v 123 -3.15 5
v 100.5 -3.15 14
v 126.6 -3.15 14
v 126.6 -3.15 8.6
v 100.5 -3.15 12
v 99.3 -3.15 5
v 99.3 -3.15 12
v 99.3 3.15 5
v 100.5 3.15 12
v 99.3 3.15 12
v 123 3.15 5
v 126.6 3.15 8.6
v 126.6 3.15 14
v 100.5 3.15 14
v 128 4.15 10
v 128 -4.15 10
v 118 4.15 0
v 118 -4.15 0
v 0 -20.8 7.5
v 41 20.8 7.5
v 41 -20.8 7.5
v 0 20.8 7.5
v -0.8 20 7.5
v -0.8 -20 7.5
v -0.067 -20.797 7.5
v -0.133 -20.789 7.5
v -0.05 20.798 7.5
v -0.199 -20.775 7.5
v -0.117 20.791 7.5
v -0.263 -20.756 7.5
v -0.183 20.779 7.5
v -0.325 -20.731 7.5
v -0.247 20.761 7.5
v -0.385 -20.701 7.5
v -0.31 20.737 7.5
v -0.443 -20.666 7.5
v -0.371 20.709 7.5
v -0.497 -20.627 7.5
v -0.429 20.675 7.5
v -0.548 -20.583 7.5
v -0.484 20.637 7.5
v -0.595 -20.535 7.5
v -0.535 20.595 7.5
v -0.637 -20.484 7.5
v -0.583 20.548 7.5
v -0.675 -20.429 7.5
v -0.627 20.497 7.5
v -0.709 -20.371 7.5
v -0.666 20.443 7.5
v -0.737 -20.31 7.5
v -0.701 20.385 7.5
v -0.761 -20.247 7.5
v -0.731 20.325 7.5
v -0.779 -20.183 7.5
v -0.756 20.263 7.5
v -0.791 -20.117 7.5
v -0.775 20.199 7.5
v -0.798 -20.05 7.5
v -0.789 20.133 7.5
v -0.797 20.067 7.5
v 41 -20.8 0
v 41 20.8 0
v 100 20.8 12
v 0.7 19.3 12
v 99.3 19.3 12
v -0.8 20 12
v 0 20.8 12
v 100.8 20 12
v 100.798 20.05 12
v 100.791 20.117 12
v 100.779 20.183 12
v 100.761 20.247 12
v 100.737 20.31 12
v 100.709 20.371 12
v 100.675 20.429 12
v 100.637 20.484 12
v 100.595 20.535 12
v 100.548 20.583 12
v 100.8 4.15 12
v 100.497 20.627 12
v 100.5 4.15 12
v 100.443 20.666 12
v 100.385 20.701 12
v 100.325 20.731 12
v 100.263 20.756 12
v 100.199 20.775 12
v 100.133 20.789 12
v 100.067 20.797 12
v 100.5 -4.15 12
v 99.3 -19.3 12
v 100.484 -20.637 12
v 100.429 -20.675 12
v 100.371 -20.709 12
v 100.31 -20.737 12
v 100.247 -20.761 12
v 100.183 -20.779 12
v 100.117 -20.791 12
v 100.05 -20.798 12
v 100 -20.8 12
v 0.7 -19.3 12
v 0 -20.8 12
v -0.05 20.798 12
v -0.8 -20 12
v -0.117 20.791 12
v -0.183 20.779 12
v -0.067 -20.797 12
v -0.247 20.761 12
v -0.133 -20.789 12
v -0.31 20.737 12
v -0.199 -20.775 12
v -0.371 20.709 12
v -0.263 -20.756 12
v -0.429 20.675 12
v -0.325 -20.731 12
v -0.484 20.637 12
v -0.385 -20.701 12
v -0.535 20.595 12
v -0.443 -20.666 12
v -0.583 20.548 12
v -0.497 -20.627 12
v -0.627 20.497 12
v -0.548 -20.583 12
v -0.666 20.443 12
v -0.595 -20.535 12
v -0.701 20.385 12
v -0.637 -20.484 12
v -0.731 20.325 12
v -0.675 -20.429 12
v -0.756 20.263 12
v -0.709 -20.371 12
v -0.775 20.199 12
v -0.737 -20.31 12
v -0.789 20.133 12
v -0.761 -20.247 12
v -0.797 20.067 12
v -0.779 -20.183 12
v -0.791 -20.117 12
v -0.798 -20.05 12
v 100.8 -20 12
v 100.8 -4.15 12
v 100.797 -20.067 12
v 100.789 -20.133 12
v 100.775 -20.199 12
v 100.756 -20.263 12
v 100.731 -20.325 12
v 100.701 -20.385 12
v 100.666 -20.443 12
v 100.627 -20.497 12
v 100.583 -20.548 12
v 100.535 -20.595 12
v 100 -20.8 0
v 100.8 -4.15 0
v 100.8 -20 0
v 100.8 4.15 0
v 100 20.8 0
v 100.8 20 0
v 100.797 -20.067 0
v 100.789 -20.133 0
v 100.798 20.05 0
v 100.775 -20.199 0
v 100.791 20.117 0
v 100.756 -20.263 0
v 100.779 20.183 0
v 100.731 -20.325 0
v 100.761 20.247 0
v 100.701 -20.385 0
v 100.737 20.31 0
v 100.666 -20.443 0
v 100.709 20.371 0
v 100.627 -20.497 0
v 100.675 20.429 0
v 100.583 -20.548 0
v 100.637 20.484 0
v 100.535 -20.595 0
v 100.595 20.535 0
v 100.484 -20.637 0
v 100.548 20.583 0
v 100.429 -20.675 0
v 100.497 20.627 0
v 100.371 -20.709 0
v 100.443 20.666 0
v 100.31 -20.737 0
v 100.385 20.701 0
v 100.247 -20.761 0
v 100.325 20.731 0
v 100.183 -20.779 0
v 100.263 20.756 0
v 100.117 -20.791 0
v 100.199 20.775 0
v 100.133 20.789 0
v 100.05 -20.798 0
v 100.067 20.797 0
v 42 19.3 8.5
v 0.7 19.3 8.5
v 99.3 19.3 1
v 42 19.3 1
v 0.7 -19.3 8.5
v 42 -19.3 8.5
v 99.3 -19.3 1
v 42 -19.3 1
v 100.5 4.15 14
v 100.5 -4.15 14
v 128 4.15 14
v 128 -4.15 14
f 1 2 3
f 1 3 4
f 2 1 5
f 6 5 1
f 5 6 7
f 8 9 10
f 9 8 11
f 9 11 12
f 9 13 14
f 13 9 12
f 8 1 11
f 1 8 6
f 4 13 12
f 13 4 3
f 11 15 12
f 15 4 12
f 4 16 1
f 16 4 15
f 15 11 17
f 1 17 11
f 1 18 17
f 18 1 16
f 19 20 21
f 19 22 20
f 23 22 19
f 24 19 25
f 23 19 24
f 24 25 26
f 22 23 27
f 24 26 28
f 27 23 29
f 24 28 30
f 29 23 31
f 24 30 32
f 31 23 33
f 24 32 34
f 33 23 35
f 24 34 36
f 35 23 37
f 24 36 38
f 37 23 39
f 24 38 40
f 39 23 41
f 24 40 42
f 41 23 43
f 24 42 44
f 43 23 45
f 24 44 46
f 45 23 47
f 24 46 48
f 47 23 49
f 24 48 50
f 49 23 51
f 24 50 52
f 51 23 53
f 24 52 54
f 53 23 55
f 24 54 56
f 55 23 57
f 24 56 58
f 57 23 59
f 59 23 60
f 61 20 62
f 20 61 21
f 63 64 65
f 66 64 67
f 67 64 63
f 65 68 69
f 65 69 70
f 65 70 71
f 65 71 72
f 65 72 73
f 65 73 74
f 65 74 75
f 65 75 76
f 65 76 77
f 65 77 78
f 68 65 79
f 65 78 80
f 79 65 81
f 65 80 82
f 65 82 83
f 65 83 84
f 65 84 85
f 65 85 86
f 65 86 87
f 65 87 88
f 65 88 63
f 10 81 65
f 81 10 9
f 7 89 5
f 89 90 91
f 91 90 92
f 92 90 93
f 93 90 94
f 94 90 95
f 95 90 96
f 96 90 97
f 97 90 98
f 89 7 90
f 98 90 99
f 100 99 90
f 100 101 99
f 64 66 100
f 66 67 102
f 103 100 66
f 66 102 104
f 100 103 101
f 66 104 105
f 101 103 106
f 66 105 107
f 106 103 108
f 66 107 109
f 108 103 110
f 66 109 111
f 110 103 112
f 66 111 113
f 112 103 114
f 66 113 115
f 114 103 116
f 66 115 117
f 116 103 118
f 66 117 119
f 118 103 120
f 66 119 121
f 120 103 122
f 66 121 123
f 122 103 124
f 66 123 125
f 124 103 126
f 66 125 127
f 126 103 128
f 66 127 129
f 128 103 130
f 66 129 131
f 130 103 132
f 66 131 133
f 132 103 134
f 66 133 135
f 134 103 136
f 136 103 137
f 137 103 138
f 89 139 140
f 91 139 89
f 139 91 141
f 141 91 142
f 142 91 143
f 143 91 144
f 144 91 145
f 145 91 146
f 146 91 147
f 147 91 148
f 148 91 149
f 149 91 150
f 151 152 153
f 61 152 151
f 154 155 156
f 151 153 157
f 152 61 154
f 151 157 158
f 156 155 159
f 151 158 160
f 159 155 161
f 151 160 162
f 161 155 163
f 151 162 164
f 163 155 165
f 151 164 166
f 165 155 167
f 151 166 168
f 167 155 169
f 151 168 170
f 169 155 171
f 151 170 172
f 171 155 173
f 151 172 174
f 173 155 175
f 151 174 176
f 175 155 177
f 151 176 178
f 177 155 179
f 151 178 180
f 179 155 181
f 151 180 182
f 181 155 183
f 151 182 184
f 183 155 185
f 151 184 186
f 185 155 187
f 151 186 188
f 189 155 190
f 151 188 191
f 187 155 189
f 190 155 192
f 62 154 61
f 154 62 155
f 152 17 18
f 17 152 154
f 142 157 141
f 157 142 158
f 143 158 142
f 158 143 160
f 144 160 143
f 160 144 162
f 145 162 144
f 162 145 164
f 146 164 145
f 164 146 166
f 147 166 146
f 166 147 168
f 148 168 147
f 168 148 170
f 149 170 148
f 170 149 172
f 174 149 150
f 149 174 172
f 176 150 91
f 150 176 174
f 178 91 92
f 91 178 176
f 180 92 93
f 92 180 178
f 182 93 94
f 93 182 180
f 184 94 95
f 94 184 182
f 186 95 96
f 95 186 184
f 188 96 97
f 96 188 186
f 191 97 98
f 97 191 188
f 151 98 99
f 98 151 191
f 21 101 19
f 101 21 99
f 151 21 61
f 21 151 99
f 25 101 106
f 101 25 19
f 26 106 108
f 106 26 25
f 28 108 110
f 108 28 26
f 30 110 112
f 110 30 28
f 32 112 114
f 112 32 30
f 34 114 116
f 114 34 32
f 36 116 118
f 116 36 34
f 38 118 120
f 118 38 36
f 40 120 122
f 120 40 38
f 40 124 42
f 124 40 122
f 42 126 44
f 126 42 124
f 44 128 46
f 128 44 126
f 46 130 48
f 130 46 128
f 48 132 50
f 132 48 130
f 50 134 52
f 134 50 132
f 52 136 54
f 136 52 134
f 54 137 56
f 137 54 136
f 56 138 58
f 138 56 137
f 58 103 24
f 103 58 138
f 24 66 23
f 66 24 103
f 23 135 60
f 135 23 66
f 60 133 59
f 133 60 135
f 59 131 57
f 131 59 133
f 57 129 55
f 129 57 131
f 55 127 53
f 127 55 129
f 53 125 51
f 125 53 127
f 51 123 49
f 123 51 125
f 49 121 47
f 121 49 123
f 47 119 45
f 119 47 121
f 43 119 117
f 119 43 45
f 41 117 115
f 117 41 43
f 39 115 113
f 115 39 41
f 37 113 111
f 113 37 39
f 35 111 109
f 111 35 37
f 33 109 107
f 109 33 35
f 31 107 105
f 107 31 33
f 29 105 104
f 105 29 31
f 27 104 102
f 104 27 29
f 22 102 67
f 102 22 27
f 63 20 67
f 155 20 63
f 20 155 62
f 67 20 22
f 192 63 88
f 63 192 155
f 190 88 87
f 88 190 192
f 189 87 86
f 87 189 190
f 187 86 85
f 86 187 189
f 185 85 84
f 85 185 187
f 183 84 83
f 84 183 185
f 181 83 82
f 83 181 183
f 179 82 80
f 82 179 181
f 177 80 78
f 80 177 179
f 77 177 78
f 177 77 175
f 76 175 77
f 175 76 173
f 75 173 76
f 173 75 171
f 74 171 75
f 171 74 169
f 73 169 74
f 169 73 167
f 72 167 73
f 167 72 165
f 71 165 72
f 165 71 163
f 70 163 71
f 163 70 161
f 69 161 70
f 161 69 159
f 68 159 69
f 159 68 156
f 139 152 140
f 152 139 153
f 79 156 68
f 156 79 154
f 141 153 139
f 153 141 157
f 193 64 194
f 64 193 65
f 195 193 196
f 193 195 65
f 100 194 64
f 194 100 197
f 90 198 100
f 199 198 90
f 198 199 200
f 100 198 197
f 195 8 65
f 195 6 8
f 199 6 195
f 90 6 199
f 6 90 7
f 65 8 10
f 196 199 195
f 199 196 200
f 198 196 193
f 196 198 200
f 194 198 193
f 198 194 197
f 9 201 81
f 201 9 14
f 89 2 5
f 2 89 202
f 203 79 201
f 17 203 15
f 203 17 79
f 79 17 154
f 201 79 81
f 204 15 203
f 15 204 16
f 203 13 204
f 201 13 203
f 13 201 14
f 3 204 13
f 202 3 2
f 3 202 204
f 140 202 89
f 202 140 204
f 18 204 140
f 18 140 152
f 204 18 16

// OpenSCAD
$fn=75;

BOX_W = 40;
BOX_L = 100;
BOX_H = 12;

WALL = 1.0;
CORNER_RADIUS = 0.8;

MIC_OUTSIDE_W=8.3;
MIC_OUTSIDE_H=14;
MIC_INSIDE_W=6.3;
MIC_L=27.5;

module roundedRectangle(width, length, radius) {
    difference() {
        offset(r=radius) square([width, length], center=true);
        offset(r=radius - WALL) square([width-WALL, length-WALL], center=true);
    }
}

module mainLid() {
    // sides of box
    linear_extrude(BOX_H)
    roundedRectangle(BOX_W, BOX_L, CORNER_RADIUS);
    // base of box
    translate([0, 0, BOX_H-WALL]) {
        linear_extrude(WALL) square([BOX_W, BOX_L], center=true);
    }
    
    // backwall on top of battery platform
    translate([0, 9, 8]) {
        rotate([90, 90, 0])
        #linear_extrude(1) square([7, 41.5], center=true);    
    }
    
    // battery platform
    translate([0, 29, 3.5]) {
        linear_extrude(1) square([40, 42], center=true);
    }
}

module micBox() {
    translate([0, -50.5, 5.0]) //y,x,z
    rotate([90, 0, 0])
    linear_extrude(MIC_L) square([MIC_OUTSIDE_W, MIC_OUTSIDE_H], center=true);
}

/*
module vent(x, y, vent_offset) {
    translate([x, y, BOX_H + vent_offset]) {
        rotate([90, 0, 90]) {
            cylinder(h=3.0, d=2.0, center=true);
        }
    }
}
*/
module cutouts() {
    translate([45, 0, 2])
    // Inside mic channel
    rotate([90, 0, 90])  // x,y,z
    #linear_extrude(MIC_L  +4.1) square([MIC_INSIDE_W, 10], center=true);
      
    // front of keel slope
    translate([65, 4.5, 15]) // x, y, z
    rotate([-45, 0, -90])
    //(y, z, x)
    #cube([10, 21, 8]); 
    
    // battery platform
    translate([-30, 0, 4.5])
    rotate([0, 0, 0])
    linear_extrude(10.0) square([42, 42], center=true);
    /*
    // Cable exit
    translate([0, -51.0, BOX_H-18.5])
    rotate([90, 0, 0])
    #linear_extrude(3.0) square([10, 6], center=true);
    */
}

// put it all together x,y,z
rotate([180, 0, 0]){
    translate([50, 0, -12]) { // offset model to start on 0, 0, 0
        difference() {
            rotate([180, 180, 270]) { // Flipping the entire object along the X axis
                union() {
                    // y, x, z
                    translate([0, 0, 0]) { 
                        mainLid();
                        micBox();
                    }
                }
            }
            cutouts();
        }
    }
}
